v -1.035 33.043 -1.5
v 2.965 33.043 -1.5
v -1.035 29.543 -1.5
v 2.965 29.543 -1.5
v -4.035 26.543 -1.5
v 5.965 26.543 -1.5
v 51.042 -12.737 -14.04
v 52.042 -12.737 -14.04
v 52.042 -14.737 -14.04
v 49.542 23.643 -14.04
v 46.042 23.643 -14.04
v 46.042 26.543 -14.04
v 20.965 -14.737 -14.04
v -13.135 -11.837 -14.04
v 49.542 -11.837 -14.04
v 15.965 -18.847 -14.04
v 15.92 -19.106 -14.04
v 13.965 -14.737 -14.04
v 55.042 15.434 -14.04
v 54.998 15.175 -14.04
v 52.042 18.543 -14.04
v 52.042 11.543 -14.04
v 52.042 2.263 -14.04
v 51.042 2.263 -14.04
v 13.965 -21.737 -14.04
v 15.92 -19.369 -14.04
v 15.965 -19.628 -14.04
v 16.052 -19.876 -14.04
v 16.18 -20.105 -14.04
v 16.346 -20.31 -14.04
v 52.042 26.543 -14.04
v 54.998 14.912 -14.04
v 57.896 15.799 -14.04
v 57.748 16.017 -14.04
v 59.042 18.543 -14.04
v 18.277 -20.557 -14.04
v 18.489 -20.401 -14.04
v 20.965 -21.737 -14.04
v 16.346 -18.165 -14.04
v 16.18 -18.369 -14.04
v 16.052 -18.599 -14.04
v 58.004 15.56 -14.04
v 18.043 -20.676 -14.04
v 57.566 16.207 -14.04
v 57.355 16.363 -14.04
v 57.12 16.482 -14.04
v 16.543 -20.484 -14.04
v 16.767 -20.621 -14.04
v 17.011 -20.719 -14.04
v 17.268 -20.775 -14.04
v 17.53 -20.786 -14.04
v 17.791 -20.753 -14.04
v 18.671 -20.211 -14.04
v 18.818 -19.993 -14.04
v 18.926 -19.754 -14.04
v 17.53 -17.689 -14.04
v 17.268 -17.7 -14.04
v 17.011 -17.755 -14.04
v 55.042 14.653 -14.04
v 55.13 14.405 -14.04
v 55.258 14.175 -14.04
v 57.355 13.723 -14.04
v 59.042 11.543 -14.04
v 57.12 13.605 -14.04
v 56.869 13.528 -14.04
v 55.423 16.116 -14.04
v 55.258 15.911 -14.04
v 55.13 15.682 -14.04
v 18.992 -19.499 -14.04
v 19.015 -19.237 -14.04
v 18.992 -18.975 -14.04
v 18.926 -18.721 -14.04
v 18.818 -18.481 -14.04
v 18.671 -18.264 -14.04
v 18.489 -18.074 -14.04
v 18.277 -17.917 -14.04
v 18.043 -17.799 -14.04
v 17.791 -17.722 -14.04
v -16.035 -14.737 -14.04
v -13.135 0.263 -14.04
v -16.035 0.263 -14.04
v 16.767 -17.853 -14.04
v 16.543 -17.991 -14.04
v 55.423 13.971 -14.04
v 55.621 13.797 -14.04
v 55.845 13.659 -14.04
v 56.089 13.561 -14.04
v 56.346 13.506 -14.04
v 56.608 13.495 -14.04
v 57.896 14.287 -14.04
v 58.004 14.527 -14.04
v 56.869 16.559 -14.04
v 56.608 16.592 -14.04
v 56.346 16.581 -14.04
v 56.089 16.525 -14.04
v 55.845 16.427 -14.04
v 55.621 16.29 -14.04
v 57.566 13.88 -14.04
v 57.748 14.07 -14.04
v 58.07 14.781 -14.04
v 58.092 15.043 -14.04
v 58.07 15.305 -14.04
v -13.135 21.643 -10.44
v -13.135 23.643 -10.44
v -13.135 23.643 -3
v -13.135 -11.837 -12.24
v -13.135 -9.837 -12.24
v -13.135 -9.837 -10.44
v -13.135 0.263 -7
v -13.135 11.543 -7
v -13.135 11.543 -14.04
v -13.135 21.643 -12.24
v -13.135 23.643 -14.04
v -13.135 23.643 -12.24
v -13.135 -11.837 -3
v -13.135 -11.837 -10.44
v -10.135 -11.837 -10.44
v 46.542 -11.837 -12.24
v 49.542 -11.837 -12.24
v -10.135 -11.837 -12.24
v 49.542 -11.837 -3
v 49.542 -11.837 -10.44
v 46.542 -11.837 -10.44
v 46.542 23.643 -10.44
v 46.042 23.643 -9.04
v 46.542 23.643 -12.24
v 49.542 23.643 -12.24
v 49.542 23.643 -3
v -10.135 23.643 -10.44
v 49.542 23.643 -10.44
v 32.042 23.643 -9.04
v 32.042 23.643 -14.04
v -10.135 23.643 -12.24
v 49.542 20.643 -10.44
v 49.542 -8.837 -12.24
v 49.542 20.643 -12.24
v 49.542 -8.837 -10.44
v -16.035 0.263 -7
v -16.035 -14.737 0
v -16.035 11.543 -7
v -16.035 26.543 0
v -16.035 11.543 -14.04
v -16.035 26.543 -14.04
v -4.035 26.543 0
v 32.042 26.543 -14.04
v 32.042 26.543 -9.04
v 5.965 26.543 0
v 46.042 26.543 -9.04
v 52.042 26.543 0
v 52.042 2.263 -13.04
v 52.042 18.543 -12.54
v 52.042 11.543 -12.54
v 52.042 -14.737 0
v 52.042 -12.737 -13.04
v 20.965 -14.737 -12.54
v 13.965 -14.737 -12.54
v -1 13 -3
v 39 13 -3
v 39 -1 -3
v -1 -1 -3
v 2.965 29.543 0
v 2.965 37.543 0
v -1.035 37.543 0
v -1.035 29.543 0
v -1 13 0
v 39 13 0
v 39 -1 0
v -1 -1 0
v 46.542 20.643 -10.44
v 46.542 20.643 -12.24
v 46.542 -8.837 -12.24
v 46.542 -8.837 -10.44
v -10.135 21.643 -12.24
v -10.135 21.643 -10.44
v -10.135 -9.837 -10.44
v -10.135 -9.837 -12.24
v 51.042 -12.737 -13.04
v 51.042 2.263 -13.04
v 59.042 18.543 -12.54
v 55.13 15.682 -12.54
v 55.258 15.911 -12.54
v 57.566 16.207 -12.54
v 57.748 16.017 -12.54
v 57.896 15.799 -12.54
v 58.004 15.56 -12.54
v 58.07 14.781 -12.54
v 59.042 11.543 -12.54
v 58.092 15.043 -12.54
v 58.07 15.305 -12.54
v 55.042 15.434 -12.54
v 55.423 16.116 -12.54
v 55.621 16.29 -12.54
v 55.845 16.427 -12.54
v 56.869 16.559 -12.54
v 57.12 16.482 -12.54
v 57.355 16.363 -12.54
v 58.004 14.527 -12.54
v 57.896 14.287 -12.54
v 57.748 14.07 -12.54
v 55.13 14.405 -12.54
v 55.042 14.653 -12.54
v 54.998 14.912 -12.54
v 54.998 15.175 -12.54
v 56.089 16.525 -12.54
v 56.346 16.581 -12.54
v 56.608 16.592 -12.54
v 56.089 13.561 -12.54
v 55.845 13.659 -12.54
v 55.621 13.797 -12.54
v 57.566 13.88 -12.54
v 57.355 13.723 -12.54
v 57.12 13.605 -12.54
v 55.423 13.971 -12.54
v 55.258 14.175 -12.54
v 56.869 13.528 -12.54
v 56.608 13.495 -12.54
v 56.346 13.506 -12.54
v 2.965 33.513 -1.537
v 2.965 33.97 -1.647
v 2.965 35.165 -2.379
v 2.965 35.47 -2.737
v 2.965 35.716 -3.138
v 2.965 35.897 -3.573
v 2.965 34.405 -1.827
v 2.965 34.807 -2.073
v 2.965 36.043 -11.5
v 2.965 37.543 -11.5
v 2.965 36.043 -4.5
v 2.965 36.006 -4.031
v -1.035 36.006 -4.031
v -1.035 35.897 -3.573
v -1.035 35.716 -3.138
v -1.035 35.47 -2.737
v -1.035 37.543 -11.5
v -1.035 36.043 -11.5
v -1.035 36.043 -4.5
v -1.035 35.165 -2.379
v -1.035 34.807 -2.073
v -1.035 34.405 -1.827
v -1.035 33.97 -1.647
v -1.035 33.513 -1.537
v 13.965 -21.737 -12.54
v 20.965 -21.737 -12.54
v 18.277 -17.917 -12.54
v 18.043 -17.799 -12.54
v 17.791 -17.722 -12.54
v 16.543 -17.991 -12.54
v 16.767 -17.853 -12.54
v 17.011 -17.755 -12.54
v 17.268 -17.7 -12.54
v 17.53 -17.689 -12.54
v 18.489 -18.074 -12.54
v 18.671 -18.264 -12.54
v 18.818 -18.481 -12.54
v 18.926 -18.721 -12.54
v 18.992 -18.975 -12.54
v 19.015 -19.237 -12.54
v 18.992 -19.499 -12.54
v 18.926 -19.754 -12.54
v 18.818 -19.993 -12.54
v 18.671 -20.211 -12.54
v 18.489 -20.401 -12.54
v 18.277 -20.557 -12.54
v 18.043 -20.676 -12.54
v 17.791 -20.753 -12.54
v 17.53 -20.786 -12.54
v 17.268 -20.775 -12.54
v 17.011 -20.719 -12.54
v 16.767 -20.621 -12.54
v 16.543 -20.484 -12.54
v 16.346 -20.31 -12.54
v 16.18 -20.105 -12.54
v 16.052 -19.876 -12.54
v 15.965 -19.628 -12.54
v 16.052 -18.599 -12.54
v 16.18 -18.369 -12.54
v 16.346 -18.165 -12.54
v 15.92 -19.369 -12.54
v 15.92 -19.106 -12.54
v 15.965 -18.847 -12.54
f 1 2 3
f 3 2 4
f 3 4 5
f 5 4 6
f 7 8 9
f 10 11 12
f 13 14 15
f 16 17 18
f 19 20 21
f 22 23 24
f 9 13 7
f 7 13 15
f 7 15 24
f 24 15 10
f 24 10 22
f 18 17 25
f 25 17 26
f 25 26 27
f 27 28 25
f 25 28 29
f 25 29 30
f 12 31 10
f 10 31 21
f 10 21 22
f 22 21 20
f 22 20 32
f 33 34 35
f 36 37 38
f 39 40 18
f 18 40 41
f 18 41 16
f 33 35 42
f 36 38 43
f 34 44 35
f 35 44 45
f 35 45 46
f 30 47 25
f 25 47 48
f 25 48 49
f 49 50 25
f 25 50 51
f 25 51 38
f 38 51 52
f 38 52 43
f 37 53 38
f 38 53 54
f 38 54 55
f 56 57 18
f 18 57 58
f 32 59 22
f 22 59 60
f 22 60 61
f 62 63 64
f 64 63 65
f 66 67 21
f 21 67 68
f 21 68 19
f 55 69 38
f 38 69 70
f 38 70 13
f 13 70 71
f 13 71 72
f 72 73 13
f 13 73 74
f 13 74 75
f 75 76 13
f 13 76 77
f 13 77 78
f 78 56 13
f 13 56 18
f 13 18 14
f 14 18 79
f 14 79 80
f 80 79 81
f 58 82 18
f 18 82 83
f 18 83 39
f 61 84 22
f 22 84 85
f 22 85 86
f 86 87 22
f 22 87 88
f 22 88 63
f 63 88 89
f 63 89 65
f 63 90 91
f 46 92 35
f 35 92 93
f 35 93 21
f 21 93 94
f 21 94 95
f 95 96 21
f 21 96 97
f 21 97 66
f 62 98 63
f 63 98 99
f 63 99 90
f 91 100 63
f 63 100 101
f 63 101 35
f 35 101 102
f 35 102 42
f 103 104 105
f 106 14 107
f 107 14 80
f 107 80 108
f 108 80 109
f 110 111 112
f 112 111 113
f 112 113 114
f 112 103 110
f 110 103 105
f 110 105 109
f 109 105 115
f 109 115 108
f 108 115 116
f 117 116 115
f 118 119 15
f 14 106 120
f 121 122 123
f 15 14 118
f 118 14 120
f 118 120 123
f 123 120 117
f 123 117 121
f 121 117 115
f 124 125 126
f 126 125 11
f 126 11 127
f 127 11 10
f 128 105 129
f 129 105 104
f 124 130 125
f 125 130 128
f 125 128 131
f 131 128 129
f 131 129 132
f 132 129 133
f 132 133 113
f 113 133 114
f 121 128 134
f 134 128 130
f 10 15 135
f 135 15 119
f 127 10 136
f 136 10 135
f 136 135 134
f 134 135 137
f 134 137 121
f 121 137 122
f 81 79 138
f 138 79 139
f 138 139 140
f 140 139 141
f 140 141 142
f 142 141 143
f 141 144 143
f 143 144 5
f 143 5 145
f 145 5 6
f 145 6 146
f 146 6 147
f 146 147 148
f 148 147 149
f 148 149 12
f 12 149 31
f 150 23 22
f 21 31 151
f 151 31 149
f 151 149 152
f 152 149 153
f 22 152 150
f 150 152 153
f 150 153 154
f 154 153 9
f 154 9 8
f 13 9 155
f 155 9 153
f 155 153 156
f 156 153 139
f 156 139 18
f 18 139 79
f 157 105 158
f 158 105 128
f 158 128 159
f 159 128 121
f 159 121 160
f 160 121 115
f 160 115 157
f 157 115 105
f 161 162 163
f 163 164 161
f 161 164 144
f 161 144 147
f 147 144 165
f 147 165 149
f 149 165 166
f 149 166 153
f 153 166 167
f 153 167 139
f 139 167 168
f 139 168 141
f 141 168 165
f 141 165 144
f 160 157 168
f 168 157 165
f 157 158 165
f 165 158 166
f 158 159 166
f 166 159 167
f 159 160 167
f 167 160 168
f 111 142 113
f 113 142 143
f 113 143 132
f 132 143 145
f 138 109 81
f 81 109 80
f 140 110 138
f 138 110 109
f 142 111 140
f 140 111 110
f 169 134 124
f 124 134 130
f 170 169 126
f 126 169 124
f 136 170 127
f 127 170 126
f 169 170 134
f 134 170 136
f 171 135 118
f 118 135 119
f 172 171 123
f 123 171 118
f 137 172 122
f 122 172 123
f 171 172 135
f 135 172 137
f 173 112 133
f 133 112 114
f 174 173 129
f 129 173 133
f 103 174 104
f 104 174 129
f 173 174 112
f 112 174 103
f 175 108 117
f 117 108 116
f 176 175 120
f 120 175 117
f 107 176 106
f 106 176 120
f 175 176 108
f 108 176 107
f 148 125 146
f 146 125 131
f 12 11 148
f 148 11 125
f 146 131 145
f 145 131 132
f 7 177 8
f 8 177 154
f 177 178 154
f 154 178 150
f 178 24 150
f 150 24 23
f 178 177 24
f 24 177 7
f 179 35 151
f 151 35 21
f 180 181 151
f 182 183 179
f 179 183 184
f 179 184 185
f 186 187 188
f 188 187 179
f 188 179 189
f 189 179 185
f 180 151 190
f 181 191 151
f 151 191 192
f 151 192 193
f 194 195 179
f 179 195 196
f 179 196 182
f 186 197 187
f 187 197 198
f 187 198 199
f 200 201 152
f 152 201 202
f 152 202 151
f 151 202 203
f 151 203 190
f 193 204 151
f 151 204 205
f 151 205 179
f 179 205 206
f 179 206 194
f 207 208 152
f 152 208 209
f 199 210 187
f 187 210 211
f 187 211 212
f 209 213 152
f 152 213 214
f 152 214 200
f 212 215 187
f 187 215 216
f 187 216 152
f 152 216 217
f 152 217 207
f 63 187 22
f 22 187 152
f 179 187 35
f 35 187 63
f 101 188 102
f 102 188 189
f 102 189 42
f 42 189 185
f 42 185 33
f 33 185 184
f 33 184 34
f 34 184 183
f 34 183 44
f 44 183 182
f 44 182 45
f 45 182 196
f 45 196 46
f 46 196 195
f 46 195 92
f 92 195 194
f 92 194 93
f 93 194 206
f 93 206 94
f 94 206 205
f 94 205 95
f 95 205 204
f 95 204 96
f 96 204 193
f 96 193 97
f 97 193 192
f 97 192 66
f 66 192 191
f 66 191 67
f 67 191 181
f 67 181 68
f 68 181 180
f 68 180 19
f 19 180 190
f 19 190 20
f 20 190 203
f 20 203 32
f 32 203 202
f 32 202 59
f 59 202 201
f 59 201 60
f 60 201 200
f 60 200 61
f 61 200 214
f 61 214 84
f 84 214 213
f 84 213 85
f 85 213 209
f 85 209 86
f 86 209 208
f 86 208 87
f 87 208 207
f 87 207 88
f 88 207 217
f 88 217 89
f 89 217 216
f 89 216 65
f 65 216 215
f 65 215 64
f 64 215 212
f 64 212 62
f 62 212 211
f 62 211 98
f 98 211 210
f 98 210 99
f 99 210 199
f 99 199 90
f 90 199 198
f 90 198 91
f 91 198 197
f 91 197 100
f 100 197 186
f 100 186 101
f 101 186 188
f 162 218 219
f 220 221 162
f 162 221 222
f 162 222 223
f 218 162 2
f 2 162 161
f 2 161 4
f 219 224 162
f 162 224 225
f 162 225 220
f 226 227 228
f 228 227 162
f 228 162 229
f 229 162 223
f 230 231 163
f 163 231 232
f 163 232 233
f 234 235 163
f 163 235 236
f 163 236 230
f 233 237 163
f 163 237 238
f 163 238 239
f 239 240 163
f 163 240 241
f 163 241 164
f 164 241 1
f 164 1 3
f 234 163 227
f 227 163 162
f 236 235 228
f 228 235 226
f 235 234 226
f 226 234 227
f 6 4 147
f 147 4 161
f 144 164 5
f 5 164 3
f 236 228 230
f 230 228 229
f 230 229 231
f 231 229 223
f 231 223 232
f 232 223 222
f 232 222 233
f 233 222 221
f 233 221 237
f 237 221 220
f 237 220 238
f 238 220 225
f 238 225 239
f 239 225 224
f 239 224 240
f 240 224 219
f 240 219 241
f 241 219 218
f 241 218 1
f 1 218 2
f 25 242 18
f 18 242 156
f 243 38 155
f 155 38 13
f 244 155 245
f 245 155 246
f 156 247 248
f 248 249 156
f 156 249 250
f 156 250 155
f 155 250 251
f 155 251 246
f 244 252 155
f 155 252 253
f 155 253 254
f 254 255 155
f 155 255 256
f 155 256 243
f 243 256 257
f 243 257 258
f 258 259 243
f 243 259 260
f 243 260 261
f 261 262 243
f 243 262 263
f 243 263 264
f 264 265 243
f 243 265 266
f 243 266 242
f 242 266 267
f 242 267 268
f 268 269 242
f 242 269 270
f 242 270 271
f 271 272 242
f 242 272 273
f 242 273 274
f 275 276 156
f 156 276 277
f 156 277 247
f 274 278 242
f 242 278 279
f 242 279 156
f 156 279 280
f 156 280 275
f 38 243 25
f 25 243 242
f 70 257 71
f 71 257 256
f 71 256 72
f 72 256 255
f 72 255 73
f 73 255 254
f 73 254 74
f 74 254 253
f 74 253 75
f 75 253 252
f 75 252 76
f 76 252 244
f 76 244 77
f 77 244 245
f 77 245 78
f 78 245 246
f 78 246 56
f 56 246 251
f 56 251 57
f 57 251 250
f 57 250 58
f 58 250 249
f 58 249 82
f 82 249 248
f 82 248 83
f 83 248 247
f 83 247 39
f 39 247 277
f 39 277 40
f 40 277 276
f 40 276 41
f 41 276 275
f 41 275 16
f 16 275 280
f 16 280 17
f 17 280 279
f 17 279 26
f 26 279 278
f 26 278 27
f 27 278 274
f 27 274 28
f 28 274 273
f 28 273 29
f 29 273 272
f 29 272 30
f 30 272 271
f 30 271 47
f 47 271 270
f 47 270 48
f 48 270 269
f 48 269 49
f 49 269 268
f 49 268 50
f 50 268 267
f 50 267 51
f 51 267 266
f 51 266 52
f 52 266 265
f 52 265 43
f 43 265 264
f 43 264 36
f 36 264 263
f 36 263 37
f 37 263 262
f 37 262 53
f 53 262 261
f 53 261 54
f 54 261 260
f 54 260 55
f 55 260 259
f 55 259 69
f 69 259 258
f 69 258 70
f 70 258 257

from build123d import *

# Parameters (mm, degrees)
SKETCH_1_W          = 68.077724156
SKETCH_1_H          = 41.280670561
SKETCH_1_W_2        = 40
SKETCH_1_H_2        = 14
EXTRUDE_1_DEPTH     = 3
SKETCH_2_W          = 68.077724156
SKETCH_2_H          = 41.280670561
SKETCH_2_W_2        = 62.677724156
SKETCH_2_H_2        = 35.480670561
EXTRUDE_2_DEPTH     = 11.04005
SKETCH_3_W          = 7.040050383
SKETCH_3_H          = 11.280670561
CUT_EXTRUDE_1_DEPTH = 2.9
SKETCH_4_W          = 3
SKETCH_4_H          = 1.8
EXTRUDE_3_DEPTH     = 3
SKETCH_5_W          = 3
SKETCH_5_H          = 1.8
EXTRUDE_4_DEPTH     = 3
SKETCH_6_W          = 3
SKETCH_6_H          = 1.8
EXTRUDE_5_DEPTH     = 2
SKETCH_7_W          = 3
SKETCH_7_H          = 1.8
EXTRUDE_6_DEPTH     = 2
SKETCH_8_W          = 14
SKETCH_8_H          = 5
CUT_EXTRUDE_2_DEPTH = 2.9
SKETCH_9_W          = 1
SKETCH_9_H          = 15
CUT_EXTRUDE_3_DEPTH = 1
SKETCH_10_W         = 1.5
SKETCH_10_H         = 7
EXTRUDE_7_DEPTH     = 7
SKETCH_13_R         = 1.55
CUT_EXTRUDE_6_DEPTH = 2.5
SKETCH_14_W         = 4
SKETCH_14_H         = 1.5
EXTRUDE_8_DEPTH     = 11
SKETCH_15_W         = 4
SKETCH_15_H         = 1.5
EXTRUDE_9_DEPTH     = 10
CHAMFER_1_SIZE      = 3
FILLET_2_R          = 3
SKETCH_16_W         = 7
SKETCH_16_H         = 1.5
EXTRUDE_10_DEPTH    = 7
SKETCH_17_R         = 1.55
CUT_EXTRUDE_7_DEPTH = 2.5


with BuildPart() as part:
    # 草图1 → 凸台-拉伸1 (new body)
    with BuildSketch(Plane.XY):
        with Locations((18.003533133, 5.902999581)):
            Rectangle(SKETCH_1_W, SKETCH_1_H)
        with Locations((19, 6)):
            Rectangle(SKETCH_1_W_2, SKETCH_1_H_2, mode=Mode.SUBTRACT)
    extrude(amount=-EXTRUDE_1_DEPTH)

    # 草图2 → 凸台-拉伸2 (add)
    with BuildSketch(Plane(origin=(0, 0, -3), x_dir=(-1, 0, 0), z_dir=(0, 0, -1))):
        with Locations((-18.003533133, 5.902999581)):
            Rectangle(SKETCH_2_W, SKETCH_2_H)
        with Locations((-18.203533133, 5.902999581)):
            Rectangle(SKETCH_2_W_2, SKETCH_2_H_2, mode=Mode.SUBTRACT)
    extrude(amount=EXTRUDE_2_DEPTH)

    # 草图3 → 切除-拉伸1 (cut)
    with BuildSketch(Plane.ZY.offset(16.035328945)):
        with Locations((-10.520025192, 5.902999581)):
            Rectangle(SKETCH_3_W, SKETCH_3_H)
    extrude(amount=-CUT_EXTRUDE_1_DEPTH, mode=Mode.SUBTRACT)

    # 草图4 → 凸台-拉伸3 (add)
    with BuildSketch(Plane.XZ.offset(-23.643334861)):
        with Locations((48.042395211, -11.340050383)):
            Rectangle(SKETCH_4_W, SKETCH_4_H)
    extrude(amount=EXTRUDE_3_DEPTH)

    # 草图5 → 凸台-拉伸4 (add)
    with BuildSketch(Plane(origin=(0, -11.8373357, 0), x_dir=(1, 0, 0), z_dir=(0, 1, 0))):
        with Locations((48.042395211, 11.340050383)):
            Rectangle(SKETCH_5_W, SKETCH_5_H)
    extrude(amount=EXTRUDE_4_DEPTH)

    # 草图6 → 凸台-拉伸5 (add)
    with BuildSketch(Plane.XZ.offset(-23.643334861)):
        with Locations((-11.635328945, -11.340050383)):
            Rectangle(SKETCH_6_W, SKETCH_6_H)
    extrude(amount=EXTRUDE_5_DEPTH)

    # 草图7 → 凸台-拉伸6 (add)
    with BuildSketch(Plane(origin=(0, -11.8373357, 0), x_dir=(1, 0, 0), z_dir=(0, 1, 0))):
        with Locations((-11.635328945, 11.340050383)):
            Rectangle(SKETCH_7_W, SKETCH_7_H)
    extrude(amount=EXTRUDE_6_DEPTH)

    # 草图8 → 切除-拉伸2 (cut)
    with BuildSketch(Plane(origin=(0, 26.543334861, 0), x_dir=(1, 0, 0), z_dir=(0, 1, 0))):
        with Locations((39.042395211, 11.540050383)):
            Rectangle(SKETCH_8_W, SKETCH_8_H)
    extrude(amount=-CUT_EXTRUDE_2_DEPTH, mode=Mode.SUBTRACT)

    # 草图9 → 切除-拉伸3 (cut)
    with BuildSketch(Plane(origin=(52.042395211, 0, 0), x_dir=(0, 0, -1), z_dir=(1, 0, 0))):
        with Locations((13.540050383, -5.2373357)):
            Rectangle(SKETCH_9_W, SKETCH_9_H)
    extrude(amount=-CUT_EXTRUDE_3_DEPTH, mode=Mode.SUBTRACT)

    # 草图10 → 凸台-拉伸7 (add)
    with BuildSketch(Plane(origin=(52.042395211, 0, 0), x_dir=(0, 0, -1), z_dir=(1, 0, 0))):
        with Locations((13.290050383, 15.043334861)):
            Rectangle(SKETCH_10_W, SKETCH_10_H)
    extrude(amount=EXTRUDE_7_DEPTH)

    # 草图13 → 切除-拉伸6 (cut, through all)
    with BuildSketch(Plane.XY.offset(-12.540050383)):
        with Locations((56.542395211, 15.043334861)):
            Circle(SKETCH_13_R)
    extrude(amount=-CUT_EXTRUDE_6_DEPTH, mode=Mode.SUBTRACT)

    # 草图14 → 凸台-拉伸8 (add)
    with BuildSketch(Plane(origin=(0, 26.543334861, 0), x_dir=(1, 0, 0), z_dir=(0, 1, 0))):
        with Locations((0.964671055, 0.75)):
            Rectangle(SKETCH_14_W, SKETCH_14_H)
    extrude(amount=EXTRUDE_8_DEPTH)

    # 草图15 → 凸台-拉伸9 (add)
    with BuildSketch(Plane(origin=(0, 0, -1.5), x_dir=(-1, 0, 0), z_dir=(0, 0, -1))):
        with Locations((-0.964671055, 36.793334861)):
            Rectangle(SKETCH_15_W, SKETCH_15_H)
    extrude(amount=EXTRUDE_9_DEPTH)

    # 倒角1
    chamfer_1_edges = [part.edges().sort_by_distance(p)[0] for p in [
        (2.964671055, 26.543334861, -0.75),
        (-1.035328945, 26.543334861, -0.75),
    ]]
    chamfer(chamfer_1_edges, length=CHAMFER_1_SIZE)

    # 圆角2
    fillet_2_edges = [part.edges().sort_by_distance(p)[0] for p in [
        (0.964671055, 36.043334861, -1.5),
    ]]
    fillet(fillet_2_edges, radius=FILLET_2_R)

    # 草图16 → 凸台-拉伸10 (add)
    with BuildSketch(Plane.XZ.offset(14.7373357)):
        with Locations((17.464671055, -13.290050383)):
            Rectangle(SKETCH_16_W, SKETCH_16_H)
    extrude(amount=EXTRUDE_10_DEPTH)

    # 草图17 → 切除-拉伸7 (cut, through all)
    with BuildSketch(Plane.XY.offset(-12.540050383)):
        with Locations((17.464671055, -19.2373357)):
            Circle(SKETCH_17_R)
    extrude(amount=-CUT_EXTRUDE_7_DEPTH, mode=Mode.SUBTRACT)


solid = part.part
